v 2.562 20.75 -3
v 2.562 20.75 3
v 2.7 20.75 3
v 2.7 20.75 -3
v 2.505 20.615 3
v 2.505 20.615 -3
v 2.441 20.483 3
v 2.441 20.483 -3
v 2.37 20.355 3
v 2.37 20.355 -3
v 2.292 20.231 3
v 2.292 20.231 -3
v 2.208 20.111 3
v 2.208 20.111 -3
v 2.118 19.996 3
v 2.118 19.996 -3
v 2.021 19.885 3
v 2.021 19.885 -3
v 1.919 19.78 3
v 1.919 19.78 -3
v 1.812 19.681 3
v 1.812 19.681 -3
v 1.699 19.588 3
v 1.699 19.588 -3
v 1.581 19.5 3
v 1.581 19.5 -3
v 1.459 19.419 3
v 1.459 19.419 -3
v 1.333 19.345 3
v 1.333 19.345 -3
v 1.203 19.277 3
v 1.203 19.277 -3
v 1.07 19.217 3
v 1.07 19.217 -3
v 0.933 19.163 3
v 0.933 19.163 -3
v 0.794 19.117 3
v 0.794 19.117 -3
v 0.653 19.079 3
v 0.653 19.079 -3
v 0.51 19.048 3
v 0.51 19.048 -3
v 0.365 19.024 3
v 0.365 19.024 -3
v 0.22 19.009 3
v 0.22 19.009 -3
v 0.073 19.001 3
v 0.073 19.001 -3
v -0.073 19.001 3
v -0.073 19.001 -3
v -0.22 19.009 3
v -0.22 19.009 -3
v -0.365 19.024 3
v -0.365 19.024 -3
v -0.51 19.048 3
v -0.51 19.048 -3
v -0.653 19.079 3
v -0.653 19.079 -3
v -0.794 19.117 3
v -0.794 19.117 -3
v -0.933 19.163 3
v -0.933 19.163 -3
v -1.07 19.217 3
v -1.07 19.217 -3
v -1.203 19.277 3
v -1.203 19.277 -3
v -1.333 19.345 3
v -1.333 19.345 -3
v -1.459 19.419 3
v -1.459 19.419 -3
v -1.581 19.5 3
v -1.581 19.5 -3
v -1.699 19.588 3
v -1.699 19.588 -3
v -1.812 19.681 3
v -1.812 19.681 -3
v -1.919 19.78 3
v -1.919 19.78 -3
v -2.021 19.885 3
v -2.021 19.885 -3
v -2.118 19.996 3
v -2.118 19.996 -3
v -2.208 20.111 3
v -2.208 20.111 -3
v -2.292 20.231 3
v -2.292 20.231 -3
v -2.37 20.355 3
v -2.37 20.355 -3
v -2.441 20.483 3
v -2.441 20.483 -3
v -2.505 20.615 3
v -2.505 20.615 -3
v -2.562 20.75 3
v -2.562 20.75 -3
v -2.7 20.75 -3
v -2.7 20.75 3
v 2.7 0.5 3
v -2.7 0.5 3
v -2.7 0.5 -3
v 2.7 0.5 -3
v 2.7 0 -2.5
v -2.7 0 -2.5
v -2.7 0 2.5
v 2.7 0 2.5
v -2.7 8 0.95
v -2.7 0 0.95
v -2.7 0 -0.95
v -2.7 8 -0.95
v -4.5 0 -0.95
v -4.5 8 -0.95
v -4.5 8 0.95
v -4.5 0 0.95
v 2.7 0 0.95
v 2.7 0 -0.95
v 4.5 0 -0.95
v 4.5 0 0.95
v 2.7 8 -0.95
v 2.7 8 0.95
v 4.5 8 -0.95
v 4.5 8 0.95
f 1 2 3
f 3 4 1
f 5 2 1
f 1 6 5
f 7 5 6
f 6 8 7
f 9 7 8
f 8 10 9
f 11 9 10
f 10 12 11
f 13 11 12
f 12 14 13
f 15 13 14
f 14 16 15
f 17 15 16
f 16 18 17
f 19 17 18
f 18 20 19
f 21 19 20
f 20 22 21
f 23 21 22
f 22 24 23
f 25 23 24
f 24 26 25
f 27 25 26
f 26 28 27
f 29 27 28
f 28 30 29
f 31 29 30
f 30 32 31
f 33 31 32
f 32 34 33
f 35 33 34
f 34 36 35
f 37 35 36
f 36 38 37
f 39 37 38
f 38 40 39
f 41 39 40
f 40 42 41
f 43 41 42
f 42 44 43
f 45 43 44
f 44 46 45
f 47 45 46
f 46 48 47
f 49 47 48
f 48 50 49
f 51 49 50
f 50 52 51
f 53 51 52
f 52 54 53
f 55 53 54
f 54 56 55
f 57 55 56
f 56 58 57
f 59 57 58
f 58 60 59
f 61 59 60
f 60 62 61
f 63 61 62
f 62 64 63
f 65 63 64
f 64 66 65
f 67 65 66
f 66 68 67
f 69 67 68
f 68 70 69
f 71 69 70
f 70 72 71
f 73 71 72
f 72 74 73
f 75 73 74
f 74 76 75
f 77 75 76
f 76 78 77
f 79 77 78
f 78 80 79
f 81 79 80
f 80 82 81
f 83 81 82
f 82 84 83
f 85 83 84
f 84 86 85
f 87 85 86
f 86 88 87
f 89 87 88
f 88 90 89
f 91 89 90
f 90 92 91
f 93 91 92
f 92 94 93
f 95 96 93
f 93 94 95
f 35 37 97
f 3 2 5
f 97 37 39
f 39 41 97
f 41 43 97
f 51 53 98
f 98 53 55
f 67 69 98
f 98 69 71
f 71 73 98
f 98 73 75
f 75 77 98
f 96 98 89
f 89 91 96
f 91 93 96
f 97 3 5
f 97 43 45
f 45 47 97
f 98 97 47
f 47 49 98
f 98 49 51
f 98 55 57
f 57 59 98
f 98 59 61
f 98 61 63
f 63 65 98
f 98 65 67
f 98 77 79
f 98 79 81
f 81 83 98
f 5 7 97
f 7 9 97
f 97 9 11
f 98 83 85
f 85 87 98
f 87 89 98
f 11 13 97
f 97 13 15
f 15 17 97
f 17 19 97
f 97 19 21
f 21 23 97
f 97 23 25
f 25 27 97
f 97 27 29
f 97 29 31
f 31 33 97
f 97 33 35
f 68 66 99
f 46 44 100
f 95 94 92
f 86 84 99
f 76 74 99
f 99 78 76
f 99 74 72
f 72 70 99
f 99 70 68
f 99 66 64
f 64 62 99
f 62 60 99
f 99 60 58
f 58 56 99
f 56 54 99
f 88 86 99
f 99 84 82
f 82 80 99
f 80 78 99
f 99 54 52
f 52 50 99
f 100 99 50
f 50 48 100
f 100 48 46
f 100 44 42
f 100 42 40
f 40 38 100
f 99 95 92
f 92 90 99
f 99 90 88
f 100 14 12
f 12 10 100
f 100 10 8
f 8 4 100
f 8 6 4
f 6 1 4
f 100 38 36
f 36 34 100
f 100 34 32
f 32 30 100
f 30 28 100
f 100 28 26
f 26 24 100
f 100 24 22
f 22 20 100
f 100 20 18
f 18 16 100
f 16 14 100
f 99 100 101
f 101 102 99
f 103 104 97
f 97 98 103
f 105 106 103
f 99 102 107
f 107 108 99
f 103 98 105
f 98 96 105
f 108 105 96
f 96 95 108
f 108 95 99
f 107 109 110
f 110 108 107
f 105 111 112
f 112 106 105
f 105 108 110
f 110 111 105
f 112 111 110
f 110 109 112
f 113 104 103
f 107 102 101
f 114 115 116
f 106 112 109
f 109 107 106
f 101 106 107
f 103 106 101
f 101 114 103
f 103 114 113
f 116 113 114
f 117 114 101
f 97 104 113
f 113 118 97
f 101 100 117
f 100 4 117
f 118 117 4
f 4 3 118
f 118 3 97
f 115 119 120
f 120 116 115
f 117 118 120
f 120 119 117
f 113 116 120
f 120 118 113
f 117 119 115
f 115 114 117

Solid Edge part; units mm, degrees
sketch "Sketch1" plane through (0, 0, 0) normal (0, 0, 1) x (1, 0, 0)
  line L0 (-2.7, 0) -> (2.7, 0)
  line L1 (2.7, 0) -> (2.7, 20.75)
  line L2 (2.7, 20.75) -> (2.5617, 20.75)
  arc A0 (-2.5617, 20.75) -> (2.5617, 20.75) centre (0, 21.75) ccw
  line L3 (-2.7, 20.75) -> (-2.5617, 20.75)
  line L4 (-2.7, 0) -> (-2.7, 20.75)
  dimension "D1" = 21.75
  dimension "D2" = 5.4
  dimension "D3" = 1
  dimension "D4" = 2.75
extrude "Protrusion1" add sketch "Sketch1" along normal mid plane 6
sketch "Sketch2" plane through (0, 0, 0) normal (0, -1, 0) x (1, 0, 0)
  line L0 (-4.5, -0.95) -> (4.5, -0.95)
  line L1 (4.5, -0.95) -> (4.5, 0.95)
  line L2 (4.5, 0.95) -> (-4.5, 0.95)
  line L3 (-4.5, 0.95) -> (-4.5, -0.95)
  dimension "D1" = 1.9
  dimension "D2" = 1.8
extrude "Extrusionsausprägung_2" add sketch "Sketch2" against normal blind 8
chamfer "Fase_1" distance 0.5 angle 45 2 edges at (0, 0, 3) (0, 0, -3)
